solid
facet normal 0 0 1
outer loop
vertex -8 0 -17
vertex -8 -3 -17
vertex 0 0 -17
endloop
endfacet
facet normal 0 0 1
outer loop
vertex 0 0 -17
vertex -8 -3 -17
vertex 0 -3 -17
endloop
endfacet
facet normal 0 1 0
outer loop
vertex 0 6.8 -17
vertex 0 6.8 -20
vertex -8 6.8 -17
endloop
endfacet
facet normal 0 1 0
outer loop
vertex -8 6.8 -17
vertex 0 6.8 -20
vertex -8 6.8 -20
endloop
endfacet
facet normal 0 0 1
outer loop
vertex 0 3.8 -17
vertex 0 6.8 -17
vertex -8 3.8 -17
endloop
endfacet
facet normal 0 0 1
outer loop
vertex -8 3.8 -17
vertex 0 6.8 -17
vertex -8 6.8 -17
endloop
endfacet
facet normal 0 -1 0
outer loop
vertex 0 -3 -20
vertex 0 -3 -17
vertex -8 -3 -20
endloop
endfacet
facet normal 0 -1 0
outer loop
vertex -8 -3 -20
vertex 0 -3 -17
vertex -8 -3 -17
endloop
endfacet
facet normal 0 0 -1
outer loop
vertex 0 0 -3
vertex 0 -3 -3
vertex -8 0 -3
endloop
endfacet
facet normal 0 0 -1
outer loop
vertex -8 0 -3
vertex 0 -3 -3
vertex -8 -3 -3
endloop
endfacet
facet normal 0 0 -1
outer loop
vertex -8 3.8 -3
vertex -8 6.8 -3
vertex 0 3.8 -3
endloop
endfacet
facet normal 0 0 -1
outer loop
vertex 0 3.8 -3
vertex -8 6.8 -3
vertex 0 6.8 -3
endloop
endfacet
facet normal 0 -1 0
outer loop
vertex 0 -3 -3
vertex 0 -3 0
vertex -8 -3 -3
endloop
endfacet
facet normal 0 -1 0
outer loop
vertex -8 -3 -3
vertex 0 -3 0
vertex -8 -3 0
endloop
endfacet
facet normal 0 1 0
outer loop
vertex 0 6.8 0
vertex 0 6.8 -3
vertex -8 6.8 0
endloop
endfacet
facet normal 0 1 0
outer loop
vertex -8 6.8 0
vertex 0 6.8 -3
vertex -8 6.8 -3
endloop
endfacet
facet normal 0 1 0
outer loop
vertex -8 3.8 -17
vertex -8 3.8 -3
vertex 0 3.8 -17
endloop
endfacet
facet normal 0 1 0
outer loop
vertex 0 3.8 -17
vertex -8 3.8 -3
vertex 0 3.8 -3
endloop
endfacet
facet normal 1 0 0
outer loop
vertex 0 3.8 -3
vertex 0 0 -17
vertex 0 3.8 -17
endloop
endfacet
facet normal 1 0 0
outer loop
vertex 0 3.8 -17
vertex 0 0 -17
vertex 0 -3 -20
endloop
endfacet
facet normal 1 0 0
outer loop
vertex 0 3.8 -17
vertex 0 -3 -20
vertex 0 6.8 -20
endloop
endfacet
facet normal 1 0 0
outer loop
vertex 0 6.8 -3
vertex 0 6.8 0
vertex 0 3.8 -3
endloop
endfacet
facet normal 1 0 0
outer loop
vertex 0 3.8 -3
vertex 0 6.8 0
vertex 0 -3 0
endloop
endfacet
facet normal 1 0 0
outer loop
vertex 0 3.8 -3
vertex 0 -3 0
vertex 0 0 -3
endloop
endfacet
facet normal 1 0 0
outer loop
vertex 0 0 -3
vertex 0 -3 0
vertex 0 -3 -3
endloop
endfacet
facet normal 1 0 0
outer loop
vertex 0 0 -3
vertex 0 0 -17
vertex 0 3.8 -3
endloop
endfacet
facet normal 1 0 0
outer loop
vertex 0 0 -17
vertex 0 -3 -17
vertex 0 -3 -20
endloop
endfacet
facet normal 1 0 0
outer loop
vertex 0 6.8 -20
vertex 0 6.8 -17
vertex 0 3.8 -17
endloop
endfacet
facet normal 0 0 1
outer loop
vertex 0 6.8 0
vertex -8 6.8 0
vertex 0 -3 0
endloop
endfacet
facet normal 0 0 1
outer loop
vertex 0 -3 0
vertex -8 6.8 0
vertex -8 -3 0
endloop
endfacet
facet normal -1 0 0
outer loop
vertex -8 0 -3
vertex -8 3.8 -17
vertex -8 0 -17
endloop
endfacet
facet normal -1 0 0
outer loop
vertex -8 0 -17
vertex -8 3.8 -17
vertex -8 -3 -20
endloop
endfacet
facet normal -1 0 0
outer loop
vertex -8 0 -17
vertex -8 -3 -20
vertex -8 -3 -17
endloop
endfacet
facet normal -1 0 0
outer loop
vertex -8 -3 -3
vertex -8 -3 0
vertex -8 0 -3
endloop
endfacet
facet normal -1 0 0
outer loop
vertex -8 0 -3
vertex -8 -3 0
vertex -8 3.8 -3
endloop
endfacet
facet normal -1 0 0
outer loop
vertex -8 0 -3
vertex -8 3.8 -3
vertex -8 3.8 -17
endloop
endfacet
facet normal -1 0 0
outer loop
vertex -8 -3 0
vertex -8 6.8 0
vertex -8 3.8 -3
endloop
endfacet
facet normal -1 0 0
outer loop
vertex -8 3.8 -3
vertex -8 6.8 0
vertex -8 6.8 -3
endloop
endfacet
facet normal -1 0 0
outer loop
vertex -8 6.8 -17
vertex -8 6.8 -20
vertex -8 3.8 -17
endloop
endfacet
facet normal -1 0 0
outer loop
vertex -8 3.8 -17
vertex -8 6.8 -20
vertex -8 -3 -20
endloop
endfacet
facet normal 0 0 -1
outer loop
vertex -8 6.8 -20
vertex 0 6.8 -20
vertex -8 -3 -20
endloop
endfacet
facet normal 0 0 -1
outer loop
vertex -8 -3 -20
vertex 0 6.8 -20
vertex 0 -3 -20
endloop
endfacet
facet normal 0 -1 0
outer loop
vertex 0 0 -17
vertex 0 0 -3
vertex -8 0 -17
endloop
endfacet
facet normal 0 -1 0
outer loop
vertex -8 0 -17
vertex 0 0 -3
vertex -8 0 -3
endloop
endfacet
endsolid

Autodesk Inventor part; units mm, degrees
ref_plane "YZ Plane" through (0, 0, 0) normal (1, 0, 0) x (0, 1, 0)
ref_plane "XZ Plane" through (0, 0, 0) normal (0, 1, 0) x (-1, 0, 0)
ref_plane "XY Plane" through (0, 0, 0) normal (0, 0, 1) x (1, 0, 0)
sketch "Sketch1" plane through (0, 0, 0) normal (0, 1, 0) x (-1, 0, 0)
  line L0 (0, 0) -> (8, 0)
  line L1 (8, 0) -> (8, -20)
  line L2 (8, -20) -> (0, -20)
  line L3 (0, -20) -> (0, 0)
  dimension "d0" = 8
  dimension "d1" = 20
extrude "Extrusion1" add sketch "Sketch1" along normal blind 3.8
sketch "Sketch2" plane through (0, 0, 0) normal (1, 0, 0) x (0, 0, -1)
  line L0 (20, 3.8) -> (0, 3.8) projected
  line L1 (0, 3.8) -> (0, 6.8)
  line L2 (0, 6.8) -> (3, 6.8)
  line L3 (3, 6.8) -> (3, -3)
  line L4 (3, -3) -> (0, -3)
  line L5 (0, -3) -> (0, 6.8)
  line L6 (0, 3.8) -> (20, 3.8)
  line L7 (10, 3.8) -> (10, 4.6084)
  line L8 (20, 6.8) -> (17, 6.8)
  line L9 (17, 6.8) -> (17, -3)
  line L10 (17, -3) -> (20, -3)
  line L11 (20, -3) -> (20, 6.8)
  point P0 (0, 0)
  point P1 (0, 3.8)
  dimension "d4" = 3
  dimension "d5" = 3
  dimension "d6" = 9.8
extrude "Extrusion2" add sketch "Sketch2" against normal blind 8
properties part number "cable_jig_lock"
